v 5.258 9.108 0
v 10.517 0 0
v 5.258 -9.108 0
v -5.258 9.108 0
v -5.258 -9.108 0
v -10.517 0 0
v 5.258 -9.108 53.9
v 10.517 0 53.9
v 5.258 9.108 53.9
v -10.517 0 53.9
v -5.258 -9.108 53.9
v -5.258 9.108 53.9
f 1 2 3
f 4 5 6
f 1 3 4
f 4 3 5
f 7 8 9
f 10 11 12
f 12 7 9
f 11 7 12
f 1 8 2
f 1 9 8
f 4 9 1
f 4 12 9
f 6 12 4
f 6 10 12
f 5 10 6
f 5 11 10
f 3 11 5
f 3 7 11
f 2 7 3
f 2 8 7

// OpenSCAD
// file: dimensions.scad
measureX = 9.10; // 92/2/2/sqrt(19)*sqrt(3)
measureY = 9.10; 
measureZ = 7.7; // 54/7 is about 7.7

halfSide = 1*tan(30);
h1 = 1;
dd = 0.001;
// main file
include <dimensions.scad>

hh = [7];

scale([measureX,measureY,measureZ]) 
linear_extrude(height = hh[0]*h1, center = false)
circle(2*halfSide + dd,$fn=6);
